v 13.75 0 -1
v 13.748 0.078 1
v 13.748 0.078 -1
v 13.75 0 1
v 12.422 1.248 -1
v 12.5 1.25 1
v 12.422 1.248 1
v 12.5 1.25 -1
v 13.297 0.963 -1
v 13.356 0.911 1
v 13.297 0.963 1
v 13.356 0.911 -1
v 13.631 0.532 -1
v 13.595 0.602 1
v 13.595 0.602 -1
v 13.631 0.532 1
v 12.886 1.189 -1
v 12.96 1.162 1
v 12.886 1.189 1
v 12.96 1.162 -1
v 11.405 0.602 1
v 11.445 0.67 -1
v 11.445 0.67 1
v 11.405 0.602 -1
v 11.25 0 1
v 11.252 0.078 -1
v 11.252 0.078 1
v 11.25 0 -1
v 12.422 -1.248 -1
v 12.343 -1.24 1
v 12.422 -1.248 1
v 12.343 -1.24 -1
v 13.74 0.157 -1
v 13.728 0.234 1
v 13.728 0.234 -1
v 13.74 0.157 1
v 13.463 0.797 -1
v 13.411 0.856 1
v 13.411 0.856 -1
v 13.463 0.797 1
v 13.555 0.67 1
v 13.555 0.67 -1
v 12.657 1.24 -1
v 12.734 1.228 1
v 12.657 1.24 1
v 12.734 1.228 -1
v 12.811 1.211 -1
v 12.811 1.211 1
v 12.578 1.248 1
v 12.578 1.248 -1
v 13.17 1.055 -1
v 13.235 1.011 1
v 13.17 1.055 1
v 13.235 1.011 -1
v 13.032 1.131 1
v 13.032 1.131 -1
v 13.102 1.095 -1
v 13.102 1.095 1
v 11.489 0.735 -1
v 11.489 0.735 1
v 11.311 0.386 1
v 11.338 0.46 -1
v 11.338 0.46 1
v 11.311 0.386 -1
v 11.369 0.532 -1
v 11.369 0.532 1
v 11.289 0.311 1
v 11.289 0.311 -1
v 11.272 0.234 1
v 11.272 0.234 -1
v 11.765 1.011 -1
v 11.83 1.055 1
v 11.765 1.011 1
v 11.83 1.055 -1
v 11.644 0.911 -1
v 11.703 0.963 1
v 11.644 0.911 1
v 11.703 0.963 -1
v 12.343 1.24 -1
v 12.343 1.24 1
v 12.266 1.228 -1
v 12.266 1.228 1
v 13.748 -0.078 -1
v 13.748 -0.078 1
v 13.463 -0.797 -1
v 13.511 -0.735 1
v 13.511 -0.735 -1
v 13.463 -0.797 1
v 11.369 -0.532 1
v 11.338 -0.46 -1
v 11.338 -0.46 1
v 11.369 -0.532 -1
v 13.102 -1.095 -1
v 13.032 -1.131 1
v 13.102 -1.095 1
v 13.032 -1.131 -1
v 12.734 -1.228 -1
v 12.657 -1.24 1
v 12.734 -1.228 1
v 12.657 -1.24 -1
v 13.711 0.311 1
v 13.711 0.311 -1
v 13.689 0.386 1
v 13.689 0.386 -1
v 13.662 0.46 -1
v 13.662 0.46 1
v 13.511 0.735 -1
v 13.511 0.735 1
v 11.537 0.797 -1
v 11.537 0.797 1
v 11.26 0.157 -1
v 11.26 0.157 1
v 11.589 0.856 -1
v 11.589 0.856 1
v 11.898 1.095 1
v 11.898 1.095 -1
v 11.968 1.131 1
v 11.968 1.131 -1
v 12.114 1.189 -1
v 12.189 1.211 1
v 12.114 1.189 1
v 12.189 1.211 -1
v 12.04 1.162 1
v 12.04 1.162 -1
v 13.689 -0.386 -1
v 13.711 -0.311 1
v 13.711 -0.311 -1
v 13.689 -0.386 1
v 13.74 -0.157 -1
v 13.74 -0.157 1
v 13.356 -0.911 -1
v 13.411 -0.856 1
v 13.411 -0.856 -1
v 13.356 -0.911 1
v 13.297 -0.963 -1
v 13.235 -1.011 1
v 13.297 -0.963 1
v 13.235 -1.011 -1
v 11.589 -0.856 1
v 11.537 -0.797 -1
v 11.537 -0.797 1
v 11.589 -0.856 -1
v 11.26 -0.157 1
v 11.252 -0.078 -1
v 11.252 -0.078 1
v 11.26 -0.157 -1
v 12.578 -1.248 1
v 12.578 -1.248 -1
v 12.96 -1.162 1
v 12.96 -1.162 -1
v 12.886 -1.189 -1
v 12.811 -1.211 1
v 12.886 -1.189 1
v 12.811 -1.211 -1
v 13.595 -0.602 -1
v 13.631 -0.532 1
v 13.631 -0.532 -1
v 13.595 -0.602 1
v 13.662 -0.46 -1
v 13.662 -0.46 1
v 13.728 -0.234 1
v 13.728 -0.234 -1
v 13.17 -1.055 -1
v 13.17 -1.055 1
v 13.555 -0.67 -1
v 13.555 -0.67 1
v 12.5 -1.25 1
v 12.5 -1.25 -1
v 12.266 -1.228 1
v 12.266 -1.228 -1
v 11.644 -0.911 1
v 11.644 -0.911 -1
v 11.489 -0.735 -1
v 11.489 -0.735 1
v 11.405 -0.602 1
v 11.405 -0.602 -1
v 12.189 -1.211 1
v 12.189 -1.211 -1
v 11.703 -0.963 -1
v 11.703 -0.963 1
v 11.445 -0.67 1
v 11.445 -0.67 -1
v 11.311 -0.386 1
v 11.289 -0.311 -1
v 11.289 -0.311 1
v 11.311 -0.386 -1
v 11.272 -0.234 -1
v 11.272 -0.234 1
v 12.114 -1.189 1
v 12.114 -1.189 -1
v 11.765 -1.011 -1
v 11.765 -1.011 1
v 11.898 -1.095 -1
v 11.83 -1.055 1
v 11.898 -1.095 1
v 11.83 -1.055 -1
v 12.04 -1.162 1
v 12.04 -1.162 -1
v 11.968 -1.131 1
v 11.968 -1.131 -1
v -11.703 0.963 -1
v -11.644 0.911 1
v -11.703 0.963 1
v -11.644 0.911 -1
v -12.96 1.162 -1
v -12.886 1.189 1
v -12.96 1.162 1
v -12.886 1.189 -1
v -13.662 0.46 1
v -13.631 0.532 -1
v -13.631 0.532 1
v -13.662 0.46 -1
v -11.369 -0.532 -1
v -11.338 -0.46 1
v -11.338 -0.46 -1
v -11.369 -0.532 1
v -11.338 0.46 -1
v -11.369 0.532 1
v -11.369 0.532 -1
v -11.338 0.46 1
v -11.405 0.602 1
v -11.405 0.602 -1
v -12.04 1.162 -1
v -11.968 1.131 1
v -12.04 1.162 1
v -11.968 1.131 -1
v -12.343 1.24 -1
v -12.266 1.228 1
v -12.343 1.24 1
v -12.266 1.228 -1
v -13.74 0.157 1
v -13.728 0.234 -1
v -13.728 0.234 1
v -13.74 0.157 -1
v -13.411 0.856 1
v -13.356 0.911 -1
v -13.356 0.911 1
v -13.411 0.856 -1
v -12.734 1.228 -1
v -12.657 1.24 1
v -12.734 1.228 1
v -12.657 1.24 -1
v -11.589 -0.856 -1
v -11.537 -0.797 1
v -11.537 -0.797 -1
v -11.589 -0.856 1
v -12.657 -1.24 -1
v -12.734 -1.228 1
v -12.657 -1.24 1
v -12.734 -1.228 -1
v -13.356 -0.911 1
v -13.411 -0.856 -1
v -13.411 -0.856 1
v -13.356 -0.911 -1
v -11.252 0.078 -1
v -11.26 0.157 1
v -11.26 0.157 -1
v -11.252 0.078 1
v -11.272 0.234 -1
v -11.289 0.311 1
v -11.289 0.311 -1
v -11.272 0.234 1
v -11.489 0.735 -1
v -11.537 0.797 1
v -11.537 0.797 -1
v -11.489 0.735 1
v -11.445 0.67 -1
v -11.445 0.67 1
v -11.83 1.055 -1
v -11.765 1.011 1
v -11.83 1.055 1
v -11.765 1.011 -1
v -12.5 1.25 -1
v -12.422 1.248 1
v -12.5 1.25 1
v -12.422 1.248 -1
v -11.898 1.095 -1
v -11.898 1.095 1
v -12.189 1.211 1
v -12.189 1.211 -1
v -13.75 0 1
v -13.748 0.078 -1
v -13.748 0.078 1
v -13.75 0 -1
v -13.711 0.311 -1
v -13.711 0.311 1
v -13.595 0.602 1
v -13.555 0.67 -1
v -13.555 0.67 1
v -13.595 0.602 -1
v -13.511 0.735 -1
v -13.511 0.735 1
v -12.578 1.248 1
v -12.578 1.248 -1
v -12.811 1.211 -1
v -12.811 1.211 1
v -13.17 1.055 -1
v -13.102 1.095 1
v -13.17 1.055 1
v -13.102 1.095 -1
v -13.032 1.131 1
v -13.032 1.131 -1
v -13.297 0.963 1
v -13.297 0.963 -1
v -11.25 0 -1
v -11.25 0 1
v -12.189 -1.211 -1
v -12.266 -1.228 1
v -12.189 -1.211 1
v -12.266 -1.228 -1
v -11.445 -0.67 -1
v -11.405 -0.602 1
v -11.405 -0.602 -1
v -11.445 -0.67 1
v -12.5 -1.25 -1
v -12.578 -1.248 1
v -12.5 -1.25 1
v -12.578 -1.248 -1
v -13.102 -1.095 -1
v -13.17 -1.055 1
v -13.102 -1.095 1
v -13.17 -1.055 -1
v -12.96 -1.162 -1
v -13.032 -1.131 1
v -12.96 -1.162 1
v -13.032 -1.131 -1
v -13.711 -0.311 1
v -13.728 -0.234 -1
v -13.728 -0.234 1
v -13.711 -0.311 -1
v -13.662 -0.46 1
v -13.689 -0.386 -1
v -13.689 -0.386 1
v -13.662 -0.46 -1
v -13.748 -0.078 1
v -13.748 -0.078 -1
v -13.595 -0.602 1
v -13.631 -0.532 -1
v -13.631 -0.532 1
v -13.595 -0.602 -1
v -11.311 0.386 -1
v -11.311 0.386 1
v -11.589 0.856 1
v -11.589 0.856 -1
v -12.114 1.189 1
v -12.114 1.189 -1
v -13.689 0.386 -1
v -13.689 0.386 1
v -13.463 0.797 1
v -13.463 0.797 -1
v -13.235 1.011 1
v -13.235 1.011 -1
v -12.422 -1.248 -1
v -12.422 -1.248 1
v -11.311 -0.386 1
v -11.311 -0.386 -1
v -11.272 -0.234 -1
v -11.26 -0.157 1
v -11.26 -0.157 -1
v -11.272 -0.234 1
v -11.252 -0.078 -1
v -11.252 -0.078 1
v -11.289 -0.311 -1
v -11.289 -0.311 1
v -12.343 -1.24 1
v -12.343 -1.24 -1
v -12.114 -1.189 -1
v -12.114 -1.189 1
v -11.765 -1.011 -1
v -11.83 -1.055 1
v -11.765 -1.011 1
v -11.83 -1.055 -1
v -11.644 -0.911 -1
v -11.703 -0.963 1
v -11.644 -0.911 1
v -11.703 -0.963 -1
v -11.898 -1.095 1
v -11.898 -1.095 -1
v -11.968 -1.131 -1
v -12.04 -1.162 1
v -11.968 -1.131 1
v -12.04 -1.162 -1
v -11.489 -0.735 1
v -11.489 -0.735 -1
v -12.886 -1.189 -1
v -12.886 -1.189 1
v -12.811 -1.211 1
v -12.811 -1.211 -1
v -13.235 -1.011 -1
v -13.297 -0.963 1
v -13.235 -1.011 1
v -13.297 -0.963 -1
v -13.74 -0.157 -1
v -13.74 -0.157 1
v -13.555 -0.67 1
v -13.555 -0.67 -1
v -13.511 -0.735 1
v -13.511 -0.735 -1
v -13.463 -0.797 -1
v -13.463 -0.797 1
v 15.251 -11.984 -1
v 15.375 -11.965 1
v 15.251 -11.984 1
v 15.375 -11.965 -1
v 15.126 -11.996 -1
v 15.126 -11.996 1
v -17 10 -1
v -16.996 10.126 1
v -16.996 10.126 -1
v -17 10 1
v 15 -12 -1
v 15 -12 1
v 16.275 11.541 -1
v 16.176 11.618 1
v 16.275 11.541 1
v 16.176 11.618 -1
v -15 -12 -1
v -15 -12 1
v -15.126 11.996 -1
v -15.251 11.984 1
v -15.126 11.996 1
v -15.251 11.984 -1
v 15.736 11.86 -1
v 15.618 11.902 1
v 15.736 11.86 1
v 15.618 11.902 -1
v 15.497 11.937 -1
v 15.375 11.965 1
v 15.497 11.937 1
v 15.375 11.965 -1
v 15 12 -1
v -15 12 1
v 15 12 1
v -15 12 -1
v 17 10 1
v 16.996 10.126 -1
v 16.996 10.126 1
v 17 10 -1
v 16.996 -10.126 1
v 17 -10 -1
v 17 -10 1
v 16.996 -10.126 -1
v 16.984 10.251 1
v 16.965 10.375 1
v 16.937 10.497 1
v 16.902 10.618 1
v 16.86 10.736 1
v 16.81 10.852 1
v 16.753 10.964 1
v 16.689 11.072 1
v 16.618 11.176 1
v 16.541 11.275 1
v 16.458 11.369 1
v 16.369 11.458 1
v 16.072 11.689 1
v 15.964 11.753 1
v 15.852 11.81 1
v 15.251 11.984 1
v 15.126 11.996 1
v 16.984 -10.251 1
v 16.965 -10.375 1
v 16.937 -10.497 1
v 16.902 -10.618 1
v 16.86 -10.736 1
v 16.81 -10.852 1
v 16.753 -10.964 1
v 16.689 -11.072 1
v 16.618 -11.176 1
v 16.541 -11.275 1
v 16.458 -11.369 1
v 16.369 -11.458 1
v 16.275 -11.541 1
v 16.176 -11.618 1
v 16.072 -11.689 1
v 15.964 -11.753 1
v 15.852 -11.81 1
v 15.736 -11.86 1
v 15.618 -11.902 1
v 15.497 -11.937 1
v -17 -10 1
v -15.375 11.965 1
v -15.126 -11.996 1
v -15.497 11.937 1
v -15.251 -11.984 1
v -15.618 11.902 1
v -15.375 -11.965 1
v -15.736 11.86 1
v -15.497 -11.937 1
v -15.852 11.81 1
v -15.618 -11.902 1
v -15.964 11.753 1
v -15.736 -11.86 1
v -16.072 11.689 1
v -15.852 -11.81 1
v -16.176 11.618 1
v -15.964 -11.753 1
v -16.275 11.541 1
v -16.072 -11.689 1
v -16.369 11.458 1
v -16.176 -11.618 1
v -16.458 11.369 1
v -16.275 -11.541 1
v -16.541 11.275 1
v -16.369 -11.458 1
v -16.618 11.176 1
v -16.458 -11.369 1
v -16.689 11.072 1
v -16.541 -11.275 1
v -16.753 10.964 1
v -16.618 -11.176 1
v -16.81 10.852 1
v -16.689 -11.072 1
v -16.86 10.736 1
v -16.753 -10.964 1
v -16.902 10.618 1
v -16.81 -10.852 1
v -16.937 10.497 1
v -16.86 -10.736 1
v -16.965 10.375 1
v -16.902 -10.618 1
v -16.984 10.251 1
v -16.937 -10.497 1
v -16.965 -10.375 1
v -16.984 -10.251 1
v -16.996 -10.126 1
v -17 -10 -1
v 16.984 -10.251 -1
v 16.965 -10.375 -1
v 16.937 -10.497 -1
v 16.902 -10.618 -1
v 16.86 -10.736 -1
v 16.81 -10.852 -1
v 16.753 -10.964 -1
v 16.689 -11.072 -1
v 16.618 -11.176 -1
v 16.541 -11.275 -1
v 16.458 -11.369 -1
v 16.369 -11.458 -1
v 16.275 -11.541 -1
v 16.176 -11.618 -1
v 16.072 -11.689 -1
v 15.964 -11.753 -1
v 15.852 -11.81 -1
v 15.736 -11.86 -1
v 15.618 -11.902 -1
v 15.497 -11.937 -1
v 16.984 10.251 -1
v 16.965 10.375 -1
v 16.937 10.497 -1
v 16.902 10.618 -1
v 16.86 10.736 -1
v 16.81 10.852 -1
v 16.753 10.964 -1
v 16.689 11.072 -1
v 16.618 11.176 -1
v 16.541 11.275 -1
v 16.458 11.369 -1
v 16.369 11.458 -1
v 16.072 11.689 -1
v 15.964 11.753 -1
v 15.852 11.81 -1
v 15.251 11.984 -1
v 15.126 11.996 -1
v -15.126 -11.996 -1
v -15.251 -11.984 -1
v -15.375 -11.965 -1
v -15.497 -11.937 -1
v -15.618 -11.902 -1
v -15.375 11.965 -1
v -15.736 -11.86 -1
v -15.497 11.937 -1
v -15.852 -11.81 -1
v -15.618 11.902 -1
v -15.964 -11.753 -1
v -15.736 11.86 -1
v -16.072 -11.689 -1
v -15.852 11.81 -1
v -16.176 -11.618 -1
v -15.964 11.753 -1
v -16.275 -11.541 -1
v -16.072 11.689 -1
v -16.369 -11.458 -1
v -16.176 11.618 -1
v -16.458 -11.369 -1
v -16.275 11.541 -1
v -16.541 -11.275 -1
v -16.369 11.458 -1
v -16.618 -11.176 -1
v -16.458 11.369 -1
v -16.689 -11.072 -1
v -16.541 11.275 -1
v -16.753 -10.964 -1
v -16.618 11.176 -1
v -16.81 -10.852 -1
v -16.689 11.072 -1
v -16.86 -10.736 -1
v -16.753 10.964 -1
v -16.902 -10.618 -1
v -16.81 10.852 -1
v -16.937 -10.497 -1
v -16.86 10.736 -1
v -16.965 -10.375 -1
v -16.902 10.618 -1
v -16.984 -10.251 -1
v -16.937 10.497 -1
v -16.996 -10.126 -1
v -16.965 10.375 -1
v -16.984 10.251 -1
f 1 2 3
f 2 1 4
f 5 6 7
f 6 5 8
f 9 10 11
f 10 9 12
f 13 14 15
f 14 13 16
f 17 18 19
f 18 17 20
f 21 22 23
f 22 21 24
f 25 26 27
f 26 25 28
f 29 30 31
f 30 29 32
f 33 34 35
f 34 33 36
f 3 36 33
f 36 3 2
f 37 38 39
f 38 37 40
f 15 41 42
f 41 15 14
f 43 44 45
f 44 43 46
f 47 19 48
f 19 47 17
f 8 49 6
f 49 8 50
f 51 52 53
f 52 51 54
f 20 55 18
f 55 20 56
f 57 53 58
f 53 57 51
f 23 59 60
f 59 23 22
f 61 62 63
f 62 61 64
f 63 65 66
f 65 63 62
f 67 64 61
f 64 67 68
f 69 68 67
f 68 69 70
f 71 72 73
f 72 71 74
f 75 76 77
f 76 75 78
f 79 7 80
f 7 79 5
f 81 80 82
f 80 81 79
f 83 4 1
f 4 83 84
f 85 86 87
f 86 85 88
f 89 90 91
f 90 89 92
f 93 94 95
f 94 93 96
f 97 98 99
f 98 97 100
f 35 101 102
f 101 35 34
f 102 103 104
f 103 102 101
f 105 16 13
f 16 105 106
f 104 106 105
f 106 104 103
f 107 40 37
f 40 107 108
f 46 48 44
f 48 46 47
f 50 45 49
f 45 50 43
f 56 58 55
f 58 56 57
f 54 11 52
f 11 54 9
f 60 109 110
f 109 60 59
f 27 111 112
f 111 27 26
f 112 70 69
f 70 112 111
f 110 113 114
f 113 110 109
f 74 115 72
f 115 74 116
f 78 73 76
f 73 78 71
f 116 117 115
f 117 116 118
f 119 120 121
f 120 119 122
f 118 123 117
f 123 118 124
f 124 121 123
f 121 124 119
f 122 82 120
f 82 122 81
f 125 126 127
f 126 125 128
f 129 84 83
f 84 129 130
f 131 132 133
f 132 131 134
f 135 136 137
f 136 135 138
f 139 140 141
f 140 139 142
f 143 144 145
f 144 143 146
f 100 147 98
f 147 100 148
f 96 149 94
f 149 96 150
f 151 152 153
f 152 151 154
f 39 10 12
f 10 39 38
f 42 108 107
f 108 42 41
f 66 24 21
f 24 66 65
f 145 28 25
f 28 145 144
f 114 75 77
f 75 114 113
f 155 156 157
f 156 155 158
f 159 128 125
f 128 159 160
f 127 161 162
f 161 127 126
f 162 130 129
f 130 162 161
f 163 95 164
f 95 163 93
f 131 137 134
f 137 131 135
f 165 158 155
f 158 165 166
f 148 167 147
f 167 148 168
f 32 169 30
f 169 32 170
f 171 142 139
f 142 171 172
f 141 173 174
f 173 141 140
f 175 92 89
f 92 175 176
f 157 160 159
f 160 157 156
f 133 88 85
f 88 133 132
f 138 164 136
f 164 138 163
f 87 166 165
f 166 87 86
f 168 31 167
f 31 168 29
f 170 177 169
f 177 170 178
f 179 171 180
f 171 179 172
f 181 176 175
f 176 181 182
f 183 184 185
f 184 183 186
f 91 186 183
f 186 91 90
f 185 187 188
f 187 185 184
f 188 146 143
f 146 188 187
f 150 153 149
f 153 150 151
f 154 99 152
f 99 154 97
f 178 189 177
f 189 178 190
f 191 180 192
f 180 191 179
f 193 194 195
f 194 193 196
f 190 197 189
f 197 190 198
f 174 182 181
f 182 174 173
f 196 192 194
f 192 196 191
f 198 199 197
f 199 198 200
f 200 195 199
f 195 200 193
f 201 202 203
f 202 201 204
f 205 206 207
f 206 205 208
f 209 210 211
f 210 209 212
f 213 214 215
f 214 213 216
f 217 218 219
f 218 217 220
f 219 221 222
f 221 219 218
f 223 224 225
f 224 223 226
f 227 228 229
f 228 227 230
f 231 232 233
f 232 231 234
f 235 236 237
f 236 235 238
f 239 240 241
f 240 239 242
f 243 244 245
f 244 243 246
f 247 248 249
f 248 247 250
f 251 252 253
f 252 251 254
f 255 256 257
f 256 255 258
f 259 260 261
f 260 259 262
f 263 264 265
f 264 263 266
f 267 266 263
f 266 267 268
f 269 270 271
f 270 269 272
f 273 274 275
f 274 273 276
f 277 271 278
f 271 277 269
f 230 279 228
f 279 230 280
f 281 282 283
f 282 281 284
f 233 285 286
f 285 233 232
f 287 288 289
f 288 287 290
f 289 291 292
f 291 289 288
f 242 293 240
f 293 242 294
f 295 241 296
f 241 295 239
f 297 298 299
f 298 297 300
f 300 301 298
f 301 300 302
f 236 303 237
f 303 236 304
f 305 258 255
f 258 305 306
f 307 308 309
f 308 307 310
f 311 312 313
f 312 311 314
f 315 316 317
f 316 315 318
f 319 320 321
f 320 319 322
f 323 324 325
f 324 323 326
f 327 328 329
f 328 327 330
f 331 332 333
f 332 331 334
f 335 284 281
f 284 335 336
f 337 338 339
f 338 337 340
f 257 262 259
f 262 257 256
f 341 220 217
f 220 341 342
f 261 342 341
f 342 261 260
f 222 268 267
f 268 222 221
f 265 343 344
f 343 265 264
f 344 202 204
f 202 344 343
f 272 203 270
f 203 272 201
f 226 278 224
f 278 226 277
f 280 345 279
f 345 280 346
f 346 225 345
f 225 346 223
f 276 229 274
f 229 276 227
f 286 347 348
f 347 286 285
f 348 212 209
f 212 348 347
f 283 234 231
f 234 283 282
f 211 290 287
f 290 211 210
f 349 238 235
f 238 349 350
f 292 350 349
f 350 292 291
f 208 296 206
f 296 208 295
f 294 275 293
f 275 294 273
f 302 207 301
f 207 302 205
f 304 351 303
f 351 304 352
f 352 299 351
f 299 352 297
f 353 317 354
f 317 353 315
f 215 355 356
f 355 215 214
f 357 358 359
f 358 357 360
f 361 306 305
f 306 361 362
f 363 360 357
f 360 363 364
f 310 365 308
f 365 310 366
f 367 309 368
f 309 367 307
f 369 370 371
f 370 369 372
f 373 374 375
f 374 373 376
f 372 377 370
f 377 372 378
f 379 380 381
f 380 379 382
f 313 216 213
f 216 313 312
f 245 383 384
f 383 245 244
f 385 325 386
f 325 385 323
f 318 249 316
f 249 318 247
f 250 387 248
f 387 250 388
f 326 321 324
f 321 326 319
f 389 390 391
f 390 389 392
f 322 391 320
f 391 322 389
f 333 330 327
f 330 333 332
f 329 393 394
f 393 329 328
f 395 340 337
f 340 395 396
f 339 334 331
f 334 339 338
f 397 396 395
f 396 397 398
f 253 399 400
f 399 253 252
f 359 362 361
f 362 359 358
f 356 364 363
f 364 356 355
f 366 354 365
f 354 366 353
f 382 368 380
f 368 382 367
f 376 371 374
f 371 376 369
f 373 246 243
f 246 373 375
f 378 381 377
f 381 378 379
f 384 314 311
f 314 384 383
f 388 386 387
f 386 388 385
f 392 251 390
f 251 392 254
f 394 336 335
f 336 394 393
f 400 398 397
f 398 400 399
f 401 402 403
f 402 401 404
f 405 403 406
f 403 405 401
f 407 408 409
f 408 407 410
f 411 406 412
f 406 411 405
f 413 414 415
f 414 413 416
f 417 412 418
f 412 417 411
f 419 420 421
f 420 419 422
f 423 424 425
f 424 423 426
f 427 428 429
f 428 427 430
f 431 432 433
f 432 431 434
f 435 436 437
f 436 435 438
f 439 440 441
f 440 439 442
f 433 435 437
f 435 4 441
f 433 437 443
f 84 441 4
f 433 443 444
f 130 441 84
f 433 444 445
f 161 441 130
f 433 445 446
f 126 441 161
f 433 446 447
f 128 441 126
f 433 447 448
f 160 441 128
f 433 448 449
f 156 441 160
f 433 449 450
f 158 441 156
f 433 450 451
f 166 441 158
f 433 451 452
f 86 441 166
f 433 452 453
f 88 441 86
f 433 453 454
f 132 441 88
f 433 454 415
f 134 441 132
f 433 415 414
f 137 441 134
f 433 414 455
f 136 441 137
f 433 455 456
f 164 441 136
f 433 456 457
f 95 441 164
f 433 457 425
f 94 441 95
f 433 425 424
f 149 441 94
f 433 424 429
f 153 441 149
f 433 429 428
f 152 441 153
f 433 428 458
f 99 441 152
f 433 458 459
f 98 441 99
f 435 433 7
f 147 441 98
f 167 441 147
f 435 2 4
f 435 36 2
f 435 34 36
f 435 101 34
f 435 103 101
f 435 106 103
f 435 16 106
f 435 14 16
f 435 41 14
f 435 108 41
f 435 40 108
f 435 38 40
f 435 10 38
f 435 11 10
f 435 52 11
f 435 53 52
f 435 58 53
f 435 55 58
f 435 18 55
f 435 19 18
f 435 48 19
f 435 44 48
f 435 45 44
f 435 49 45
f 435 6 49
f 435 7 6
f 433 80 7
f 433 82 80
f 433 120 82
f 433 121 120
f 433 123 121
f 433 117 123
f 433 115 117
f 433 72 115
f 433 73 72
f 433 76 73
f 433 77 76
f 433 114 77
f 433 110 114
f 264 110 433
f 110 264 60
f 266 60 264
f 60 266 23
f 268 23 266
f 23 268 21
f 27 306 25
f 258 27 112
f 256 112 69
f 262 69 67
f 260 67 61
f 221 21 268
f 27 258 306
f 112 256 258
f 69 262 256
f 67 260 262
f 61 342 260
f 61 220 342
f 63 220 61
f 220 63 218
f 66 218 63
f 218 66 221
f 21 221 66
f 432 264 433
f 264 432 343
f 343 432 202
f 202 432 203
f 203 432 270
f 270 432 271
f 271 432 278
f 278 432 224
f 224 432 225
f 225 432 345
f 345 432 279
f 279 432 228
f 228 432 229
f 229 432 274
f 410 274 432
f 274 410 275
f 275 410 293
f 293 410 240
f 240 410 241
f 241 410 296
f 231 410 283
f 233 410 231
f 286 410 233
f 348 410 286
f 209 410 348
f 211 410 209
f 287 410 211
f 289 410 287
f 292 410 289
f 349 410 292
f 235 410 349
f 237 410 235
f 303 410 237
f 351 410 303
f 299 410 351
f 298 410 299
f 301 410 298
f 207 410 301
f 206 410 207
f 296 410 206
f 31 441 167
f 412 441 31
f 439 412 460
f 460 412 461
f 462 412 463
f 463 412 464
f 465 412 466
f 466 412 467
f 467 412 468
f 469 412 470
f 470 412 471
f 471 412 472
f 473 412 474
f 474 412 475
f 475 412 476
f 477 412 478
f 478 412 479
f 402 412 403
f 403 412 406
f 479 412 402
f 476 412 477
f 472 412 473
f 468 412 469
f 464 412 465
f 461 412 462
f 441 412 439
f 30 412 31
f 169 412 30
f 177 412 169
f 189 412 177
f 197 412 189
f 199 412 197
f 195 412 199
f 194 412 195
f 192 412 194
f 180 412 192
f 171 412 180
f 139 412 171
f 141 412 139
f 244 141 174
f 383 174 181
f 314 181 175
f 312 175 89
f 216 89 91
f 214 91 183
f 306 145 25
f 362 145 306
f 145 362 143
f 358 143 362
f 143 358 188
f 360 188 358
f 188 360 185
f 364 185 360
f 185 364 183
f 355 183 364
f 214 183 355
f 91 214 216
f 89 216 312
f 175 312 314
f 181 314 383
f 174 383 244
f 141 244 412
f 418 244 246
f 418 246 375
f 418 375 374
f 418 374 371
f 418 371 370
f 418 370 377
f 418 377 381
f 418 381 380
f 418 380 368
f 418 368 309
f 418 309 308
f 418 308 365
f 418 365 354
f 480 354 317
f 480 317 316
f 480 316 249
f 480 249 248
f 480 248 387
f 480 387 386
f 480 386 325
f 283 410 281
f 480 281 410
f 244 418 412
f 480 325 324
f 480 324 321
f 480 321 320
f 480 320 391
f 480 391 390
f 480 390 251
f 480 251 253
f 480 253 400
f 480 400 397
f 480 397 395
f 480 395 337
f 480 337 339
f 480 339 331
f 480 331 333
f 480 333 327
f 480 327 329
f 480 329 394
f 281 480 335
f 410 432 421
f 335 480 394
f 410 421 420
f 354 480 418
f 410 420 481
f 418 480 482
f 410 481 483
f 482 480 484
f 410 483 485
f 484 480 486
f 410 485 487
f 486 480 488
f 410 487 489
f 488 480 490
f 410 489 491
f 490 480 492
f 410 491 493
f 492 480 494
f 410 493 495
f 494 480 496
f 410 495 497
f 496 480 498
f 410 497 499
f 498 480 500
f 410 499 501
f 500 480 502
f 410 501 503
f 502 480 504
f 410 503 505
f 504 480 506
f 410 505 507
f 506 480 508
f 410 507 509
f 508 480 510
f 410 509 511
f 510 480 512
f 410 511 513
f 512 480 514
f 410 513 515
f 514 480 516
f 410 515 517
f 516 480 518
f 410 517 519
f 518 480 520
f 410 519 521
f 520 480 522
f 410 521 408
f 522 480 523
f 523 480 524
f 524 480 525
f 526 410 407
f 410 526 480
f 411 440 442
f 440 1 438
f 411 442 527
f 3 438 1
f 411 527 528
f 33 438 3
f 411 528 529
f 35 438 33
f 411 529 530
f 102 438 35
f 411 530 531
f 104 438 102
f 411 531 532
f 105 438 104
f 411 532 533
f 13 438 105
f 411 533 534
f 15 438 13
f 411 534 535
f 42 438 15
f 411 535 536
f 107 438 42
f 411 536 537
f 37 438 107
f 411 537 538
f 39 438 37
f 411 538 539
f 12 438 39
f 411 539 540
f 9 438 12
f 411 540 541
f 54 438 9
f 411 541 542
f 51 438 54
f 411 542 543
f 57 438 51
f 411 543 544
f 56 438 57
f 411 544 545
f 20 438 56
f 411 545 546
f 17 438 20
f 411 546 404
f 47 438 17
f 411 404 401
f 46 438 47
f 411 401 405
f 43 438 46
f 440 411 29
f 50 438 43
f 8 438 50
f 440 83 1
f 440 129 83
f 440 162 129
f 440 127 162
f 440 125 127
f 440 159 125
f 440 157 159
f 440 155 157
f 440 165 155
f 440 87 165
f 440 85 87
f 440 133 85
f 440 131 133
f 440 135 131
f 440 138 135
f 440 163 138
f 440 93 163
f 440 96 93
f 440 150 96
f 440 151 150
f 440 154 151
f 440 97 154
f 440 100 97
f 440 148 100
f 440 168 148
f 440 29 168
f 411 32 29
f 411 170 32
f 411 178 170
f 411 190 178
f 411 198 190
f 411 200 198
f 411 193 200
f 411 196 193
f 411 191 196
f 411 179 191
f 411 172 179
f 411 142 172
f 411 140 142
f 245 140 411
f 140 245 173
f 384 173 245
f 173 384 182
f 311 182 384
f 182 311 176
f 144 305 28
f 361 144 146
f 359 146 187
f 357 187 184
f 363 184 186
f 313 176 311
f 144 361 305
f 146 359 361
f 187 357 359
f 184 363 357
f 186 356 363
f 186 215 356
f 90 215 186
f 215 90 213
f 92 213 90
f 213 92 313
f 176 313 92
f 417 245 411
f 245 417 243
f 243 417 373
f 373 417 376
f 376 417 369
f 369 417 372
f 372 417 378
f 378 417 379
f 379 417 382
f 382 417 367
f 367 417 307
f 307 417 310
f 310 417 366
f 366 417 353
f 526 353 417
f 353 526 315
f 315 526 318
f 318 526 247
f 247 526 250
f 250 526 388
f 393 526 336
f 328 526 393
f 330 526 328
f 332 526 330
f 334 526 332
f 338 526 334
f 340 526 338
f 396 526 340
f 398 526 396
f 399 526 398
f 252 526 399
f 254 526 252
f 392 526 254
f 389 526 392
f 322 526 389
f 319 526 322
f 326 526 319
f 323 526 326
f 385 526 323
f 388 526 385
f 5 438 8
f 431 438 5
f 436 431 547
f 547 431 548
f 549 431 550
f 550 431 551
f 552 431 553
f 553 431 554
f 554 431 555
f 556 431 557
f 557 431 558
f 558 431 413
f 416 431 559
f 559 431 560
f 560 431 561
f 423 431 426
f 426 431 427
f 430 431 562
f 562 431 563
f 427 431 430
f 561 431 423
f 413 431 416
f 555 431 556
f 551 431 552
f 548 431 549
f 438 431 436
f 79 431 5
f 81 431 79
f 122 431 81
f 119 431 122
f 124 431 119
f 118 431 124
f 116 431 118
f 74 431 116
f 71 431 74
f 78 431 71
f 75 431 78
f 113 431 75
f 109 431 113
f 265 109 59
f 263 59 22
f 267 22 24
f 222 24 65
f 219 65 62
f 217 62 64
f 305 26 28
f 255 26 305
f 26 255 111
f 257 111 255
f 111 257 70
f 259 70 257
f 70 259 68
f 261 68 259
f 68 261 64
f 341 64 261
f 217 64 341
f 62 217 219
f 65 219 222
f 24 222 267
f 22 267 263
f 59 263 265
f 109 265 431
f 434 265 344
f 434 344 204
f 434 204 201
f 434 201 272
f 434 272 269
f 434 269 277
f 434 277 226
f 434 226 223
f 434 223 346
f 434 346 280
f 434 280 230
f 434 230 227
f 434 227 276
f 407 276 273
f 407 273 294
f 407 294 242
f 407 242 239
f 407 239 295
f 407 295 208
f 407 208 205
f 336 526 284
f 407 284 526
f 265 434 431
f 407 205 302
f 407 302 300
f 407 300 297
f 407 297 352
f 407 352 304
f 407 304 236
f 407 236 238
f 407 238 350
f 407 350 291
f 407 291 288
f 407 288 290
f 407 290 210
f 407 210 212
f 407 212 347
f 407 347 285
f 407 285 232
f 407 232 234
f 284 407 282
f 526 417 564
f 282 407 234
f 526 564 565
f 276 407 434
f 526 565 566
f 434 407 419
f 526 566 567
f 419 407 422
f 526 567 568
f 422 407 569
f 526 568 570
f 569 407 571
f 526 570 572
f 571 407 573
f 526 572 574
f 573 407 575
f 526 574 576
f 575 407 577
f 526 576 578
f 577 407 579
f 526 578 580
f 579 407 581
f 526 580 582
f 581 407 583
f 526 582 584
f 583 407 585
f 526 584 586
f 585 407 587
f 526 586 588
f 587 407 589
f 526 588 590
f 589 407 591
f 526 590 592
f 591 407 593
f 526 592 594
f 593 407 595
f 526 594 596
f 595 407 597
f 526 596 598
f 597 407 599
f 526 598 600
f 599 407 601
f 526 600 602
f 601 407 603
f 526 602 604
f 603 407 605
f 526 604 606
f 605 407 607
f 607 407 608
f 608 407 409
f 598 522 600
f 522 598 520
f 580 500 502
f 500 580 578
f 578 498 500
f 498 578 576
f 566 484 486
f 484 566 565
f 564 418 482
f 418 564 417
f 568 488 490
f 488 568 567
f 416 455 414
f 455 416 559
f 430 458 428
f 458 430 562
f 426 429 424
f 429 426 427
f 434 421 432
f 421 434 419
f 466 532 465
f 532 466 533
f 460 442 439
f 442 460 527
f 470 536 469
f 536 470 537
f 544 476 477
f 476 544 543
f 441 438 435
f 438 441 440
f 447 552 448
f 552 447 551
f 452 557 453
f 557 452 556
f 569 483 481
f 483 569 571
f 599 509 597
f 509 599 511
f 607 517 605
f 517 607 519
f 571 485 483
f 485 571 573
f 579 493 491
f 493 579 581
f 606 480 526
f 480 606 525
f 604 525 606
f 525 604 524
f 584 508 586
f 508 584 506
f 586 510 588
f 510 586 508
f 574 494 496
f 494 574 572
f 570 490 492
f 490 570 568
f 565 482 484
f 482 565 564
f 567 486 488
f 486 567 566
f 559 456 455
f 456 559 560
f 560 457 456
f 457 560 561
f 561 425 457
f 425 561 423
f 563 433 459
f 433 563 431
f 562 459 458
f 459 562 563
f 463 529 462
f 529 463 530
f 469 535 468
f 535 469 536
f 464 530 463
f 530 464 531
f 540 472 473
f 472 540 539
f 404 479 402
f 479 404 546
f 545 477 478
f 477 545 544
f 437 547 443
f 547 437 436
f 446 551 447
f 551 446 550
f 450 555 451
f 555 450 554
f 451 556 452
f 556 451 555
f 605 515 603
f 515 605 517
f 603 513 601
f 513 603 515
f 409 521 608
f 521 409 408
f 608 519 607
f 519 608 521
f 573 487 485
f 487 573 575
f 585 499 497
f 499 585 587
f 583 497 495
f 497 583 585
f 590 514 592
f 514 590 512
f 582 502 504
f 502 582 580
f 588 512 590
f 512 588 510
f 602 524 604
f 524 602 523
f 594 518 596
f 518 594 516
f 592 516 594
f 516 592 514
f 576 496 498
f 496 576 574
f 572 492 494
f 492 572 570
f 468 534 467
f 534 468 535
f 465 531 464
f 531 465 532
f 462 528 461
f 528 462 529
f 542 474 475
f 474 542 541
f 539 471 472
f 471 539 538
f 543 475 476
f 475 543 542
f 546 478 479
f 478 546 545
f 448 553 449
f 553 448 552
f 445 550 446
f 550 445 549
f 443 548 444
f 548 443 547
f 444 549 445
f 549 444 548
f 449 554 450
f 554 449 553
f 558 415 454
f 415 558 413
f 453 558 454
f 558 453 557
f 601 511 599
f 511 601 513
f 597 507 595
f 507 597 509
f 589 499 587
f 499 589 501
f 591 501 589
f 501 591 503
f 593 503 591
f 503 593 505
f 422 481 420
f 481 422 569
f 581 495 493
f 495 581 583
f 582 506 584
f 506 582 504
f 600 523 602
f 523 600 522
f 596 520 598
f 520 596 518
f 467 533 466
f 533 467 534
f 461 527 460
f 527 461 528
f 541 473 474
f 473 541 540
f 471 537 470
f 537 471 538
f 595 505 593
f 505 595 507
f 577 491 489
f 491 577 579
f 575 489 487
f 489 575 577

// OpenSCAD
$fn = 100;
outerSquare=30;
innerSquare=25;
height=20;
holeDiameter=2.5;


difference() {
  linear_extrude(height = 2, center = true)
    squares();
  holes();
}

module squares() {
  minkowski() {
    #sorround(-(outerSquare/2), height/2);
    square([outerSquare, height], true);
    #sorround((outerSquare/2), -height/2);
  }
  //#square([innerSquare, height], true);
}

module sorround(x, y) {
  translate([x, y, 0])
    circle(d=2);
}

module holes(){
  translate([(outerSquare/2) - ((outerSquare-innerSquare) / 2), 0, -2])
    #cylinder(h=10, d=holeDiameter);
  
  translate([- (outerSquare/2) + ((outerSquare-innerSquare) / 2), 0, -2])
    #cylinder(h=10, d=holeDiameter);  
}
